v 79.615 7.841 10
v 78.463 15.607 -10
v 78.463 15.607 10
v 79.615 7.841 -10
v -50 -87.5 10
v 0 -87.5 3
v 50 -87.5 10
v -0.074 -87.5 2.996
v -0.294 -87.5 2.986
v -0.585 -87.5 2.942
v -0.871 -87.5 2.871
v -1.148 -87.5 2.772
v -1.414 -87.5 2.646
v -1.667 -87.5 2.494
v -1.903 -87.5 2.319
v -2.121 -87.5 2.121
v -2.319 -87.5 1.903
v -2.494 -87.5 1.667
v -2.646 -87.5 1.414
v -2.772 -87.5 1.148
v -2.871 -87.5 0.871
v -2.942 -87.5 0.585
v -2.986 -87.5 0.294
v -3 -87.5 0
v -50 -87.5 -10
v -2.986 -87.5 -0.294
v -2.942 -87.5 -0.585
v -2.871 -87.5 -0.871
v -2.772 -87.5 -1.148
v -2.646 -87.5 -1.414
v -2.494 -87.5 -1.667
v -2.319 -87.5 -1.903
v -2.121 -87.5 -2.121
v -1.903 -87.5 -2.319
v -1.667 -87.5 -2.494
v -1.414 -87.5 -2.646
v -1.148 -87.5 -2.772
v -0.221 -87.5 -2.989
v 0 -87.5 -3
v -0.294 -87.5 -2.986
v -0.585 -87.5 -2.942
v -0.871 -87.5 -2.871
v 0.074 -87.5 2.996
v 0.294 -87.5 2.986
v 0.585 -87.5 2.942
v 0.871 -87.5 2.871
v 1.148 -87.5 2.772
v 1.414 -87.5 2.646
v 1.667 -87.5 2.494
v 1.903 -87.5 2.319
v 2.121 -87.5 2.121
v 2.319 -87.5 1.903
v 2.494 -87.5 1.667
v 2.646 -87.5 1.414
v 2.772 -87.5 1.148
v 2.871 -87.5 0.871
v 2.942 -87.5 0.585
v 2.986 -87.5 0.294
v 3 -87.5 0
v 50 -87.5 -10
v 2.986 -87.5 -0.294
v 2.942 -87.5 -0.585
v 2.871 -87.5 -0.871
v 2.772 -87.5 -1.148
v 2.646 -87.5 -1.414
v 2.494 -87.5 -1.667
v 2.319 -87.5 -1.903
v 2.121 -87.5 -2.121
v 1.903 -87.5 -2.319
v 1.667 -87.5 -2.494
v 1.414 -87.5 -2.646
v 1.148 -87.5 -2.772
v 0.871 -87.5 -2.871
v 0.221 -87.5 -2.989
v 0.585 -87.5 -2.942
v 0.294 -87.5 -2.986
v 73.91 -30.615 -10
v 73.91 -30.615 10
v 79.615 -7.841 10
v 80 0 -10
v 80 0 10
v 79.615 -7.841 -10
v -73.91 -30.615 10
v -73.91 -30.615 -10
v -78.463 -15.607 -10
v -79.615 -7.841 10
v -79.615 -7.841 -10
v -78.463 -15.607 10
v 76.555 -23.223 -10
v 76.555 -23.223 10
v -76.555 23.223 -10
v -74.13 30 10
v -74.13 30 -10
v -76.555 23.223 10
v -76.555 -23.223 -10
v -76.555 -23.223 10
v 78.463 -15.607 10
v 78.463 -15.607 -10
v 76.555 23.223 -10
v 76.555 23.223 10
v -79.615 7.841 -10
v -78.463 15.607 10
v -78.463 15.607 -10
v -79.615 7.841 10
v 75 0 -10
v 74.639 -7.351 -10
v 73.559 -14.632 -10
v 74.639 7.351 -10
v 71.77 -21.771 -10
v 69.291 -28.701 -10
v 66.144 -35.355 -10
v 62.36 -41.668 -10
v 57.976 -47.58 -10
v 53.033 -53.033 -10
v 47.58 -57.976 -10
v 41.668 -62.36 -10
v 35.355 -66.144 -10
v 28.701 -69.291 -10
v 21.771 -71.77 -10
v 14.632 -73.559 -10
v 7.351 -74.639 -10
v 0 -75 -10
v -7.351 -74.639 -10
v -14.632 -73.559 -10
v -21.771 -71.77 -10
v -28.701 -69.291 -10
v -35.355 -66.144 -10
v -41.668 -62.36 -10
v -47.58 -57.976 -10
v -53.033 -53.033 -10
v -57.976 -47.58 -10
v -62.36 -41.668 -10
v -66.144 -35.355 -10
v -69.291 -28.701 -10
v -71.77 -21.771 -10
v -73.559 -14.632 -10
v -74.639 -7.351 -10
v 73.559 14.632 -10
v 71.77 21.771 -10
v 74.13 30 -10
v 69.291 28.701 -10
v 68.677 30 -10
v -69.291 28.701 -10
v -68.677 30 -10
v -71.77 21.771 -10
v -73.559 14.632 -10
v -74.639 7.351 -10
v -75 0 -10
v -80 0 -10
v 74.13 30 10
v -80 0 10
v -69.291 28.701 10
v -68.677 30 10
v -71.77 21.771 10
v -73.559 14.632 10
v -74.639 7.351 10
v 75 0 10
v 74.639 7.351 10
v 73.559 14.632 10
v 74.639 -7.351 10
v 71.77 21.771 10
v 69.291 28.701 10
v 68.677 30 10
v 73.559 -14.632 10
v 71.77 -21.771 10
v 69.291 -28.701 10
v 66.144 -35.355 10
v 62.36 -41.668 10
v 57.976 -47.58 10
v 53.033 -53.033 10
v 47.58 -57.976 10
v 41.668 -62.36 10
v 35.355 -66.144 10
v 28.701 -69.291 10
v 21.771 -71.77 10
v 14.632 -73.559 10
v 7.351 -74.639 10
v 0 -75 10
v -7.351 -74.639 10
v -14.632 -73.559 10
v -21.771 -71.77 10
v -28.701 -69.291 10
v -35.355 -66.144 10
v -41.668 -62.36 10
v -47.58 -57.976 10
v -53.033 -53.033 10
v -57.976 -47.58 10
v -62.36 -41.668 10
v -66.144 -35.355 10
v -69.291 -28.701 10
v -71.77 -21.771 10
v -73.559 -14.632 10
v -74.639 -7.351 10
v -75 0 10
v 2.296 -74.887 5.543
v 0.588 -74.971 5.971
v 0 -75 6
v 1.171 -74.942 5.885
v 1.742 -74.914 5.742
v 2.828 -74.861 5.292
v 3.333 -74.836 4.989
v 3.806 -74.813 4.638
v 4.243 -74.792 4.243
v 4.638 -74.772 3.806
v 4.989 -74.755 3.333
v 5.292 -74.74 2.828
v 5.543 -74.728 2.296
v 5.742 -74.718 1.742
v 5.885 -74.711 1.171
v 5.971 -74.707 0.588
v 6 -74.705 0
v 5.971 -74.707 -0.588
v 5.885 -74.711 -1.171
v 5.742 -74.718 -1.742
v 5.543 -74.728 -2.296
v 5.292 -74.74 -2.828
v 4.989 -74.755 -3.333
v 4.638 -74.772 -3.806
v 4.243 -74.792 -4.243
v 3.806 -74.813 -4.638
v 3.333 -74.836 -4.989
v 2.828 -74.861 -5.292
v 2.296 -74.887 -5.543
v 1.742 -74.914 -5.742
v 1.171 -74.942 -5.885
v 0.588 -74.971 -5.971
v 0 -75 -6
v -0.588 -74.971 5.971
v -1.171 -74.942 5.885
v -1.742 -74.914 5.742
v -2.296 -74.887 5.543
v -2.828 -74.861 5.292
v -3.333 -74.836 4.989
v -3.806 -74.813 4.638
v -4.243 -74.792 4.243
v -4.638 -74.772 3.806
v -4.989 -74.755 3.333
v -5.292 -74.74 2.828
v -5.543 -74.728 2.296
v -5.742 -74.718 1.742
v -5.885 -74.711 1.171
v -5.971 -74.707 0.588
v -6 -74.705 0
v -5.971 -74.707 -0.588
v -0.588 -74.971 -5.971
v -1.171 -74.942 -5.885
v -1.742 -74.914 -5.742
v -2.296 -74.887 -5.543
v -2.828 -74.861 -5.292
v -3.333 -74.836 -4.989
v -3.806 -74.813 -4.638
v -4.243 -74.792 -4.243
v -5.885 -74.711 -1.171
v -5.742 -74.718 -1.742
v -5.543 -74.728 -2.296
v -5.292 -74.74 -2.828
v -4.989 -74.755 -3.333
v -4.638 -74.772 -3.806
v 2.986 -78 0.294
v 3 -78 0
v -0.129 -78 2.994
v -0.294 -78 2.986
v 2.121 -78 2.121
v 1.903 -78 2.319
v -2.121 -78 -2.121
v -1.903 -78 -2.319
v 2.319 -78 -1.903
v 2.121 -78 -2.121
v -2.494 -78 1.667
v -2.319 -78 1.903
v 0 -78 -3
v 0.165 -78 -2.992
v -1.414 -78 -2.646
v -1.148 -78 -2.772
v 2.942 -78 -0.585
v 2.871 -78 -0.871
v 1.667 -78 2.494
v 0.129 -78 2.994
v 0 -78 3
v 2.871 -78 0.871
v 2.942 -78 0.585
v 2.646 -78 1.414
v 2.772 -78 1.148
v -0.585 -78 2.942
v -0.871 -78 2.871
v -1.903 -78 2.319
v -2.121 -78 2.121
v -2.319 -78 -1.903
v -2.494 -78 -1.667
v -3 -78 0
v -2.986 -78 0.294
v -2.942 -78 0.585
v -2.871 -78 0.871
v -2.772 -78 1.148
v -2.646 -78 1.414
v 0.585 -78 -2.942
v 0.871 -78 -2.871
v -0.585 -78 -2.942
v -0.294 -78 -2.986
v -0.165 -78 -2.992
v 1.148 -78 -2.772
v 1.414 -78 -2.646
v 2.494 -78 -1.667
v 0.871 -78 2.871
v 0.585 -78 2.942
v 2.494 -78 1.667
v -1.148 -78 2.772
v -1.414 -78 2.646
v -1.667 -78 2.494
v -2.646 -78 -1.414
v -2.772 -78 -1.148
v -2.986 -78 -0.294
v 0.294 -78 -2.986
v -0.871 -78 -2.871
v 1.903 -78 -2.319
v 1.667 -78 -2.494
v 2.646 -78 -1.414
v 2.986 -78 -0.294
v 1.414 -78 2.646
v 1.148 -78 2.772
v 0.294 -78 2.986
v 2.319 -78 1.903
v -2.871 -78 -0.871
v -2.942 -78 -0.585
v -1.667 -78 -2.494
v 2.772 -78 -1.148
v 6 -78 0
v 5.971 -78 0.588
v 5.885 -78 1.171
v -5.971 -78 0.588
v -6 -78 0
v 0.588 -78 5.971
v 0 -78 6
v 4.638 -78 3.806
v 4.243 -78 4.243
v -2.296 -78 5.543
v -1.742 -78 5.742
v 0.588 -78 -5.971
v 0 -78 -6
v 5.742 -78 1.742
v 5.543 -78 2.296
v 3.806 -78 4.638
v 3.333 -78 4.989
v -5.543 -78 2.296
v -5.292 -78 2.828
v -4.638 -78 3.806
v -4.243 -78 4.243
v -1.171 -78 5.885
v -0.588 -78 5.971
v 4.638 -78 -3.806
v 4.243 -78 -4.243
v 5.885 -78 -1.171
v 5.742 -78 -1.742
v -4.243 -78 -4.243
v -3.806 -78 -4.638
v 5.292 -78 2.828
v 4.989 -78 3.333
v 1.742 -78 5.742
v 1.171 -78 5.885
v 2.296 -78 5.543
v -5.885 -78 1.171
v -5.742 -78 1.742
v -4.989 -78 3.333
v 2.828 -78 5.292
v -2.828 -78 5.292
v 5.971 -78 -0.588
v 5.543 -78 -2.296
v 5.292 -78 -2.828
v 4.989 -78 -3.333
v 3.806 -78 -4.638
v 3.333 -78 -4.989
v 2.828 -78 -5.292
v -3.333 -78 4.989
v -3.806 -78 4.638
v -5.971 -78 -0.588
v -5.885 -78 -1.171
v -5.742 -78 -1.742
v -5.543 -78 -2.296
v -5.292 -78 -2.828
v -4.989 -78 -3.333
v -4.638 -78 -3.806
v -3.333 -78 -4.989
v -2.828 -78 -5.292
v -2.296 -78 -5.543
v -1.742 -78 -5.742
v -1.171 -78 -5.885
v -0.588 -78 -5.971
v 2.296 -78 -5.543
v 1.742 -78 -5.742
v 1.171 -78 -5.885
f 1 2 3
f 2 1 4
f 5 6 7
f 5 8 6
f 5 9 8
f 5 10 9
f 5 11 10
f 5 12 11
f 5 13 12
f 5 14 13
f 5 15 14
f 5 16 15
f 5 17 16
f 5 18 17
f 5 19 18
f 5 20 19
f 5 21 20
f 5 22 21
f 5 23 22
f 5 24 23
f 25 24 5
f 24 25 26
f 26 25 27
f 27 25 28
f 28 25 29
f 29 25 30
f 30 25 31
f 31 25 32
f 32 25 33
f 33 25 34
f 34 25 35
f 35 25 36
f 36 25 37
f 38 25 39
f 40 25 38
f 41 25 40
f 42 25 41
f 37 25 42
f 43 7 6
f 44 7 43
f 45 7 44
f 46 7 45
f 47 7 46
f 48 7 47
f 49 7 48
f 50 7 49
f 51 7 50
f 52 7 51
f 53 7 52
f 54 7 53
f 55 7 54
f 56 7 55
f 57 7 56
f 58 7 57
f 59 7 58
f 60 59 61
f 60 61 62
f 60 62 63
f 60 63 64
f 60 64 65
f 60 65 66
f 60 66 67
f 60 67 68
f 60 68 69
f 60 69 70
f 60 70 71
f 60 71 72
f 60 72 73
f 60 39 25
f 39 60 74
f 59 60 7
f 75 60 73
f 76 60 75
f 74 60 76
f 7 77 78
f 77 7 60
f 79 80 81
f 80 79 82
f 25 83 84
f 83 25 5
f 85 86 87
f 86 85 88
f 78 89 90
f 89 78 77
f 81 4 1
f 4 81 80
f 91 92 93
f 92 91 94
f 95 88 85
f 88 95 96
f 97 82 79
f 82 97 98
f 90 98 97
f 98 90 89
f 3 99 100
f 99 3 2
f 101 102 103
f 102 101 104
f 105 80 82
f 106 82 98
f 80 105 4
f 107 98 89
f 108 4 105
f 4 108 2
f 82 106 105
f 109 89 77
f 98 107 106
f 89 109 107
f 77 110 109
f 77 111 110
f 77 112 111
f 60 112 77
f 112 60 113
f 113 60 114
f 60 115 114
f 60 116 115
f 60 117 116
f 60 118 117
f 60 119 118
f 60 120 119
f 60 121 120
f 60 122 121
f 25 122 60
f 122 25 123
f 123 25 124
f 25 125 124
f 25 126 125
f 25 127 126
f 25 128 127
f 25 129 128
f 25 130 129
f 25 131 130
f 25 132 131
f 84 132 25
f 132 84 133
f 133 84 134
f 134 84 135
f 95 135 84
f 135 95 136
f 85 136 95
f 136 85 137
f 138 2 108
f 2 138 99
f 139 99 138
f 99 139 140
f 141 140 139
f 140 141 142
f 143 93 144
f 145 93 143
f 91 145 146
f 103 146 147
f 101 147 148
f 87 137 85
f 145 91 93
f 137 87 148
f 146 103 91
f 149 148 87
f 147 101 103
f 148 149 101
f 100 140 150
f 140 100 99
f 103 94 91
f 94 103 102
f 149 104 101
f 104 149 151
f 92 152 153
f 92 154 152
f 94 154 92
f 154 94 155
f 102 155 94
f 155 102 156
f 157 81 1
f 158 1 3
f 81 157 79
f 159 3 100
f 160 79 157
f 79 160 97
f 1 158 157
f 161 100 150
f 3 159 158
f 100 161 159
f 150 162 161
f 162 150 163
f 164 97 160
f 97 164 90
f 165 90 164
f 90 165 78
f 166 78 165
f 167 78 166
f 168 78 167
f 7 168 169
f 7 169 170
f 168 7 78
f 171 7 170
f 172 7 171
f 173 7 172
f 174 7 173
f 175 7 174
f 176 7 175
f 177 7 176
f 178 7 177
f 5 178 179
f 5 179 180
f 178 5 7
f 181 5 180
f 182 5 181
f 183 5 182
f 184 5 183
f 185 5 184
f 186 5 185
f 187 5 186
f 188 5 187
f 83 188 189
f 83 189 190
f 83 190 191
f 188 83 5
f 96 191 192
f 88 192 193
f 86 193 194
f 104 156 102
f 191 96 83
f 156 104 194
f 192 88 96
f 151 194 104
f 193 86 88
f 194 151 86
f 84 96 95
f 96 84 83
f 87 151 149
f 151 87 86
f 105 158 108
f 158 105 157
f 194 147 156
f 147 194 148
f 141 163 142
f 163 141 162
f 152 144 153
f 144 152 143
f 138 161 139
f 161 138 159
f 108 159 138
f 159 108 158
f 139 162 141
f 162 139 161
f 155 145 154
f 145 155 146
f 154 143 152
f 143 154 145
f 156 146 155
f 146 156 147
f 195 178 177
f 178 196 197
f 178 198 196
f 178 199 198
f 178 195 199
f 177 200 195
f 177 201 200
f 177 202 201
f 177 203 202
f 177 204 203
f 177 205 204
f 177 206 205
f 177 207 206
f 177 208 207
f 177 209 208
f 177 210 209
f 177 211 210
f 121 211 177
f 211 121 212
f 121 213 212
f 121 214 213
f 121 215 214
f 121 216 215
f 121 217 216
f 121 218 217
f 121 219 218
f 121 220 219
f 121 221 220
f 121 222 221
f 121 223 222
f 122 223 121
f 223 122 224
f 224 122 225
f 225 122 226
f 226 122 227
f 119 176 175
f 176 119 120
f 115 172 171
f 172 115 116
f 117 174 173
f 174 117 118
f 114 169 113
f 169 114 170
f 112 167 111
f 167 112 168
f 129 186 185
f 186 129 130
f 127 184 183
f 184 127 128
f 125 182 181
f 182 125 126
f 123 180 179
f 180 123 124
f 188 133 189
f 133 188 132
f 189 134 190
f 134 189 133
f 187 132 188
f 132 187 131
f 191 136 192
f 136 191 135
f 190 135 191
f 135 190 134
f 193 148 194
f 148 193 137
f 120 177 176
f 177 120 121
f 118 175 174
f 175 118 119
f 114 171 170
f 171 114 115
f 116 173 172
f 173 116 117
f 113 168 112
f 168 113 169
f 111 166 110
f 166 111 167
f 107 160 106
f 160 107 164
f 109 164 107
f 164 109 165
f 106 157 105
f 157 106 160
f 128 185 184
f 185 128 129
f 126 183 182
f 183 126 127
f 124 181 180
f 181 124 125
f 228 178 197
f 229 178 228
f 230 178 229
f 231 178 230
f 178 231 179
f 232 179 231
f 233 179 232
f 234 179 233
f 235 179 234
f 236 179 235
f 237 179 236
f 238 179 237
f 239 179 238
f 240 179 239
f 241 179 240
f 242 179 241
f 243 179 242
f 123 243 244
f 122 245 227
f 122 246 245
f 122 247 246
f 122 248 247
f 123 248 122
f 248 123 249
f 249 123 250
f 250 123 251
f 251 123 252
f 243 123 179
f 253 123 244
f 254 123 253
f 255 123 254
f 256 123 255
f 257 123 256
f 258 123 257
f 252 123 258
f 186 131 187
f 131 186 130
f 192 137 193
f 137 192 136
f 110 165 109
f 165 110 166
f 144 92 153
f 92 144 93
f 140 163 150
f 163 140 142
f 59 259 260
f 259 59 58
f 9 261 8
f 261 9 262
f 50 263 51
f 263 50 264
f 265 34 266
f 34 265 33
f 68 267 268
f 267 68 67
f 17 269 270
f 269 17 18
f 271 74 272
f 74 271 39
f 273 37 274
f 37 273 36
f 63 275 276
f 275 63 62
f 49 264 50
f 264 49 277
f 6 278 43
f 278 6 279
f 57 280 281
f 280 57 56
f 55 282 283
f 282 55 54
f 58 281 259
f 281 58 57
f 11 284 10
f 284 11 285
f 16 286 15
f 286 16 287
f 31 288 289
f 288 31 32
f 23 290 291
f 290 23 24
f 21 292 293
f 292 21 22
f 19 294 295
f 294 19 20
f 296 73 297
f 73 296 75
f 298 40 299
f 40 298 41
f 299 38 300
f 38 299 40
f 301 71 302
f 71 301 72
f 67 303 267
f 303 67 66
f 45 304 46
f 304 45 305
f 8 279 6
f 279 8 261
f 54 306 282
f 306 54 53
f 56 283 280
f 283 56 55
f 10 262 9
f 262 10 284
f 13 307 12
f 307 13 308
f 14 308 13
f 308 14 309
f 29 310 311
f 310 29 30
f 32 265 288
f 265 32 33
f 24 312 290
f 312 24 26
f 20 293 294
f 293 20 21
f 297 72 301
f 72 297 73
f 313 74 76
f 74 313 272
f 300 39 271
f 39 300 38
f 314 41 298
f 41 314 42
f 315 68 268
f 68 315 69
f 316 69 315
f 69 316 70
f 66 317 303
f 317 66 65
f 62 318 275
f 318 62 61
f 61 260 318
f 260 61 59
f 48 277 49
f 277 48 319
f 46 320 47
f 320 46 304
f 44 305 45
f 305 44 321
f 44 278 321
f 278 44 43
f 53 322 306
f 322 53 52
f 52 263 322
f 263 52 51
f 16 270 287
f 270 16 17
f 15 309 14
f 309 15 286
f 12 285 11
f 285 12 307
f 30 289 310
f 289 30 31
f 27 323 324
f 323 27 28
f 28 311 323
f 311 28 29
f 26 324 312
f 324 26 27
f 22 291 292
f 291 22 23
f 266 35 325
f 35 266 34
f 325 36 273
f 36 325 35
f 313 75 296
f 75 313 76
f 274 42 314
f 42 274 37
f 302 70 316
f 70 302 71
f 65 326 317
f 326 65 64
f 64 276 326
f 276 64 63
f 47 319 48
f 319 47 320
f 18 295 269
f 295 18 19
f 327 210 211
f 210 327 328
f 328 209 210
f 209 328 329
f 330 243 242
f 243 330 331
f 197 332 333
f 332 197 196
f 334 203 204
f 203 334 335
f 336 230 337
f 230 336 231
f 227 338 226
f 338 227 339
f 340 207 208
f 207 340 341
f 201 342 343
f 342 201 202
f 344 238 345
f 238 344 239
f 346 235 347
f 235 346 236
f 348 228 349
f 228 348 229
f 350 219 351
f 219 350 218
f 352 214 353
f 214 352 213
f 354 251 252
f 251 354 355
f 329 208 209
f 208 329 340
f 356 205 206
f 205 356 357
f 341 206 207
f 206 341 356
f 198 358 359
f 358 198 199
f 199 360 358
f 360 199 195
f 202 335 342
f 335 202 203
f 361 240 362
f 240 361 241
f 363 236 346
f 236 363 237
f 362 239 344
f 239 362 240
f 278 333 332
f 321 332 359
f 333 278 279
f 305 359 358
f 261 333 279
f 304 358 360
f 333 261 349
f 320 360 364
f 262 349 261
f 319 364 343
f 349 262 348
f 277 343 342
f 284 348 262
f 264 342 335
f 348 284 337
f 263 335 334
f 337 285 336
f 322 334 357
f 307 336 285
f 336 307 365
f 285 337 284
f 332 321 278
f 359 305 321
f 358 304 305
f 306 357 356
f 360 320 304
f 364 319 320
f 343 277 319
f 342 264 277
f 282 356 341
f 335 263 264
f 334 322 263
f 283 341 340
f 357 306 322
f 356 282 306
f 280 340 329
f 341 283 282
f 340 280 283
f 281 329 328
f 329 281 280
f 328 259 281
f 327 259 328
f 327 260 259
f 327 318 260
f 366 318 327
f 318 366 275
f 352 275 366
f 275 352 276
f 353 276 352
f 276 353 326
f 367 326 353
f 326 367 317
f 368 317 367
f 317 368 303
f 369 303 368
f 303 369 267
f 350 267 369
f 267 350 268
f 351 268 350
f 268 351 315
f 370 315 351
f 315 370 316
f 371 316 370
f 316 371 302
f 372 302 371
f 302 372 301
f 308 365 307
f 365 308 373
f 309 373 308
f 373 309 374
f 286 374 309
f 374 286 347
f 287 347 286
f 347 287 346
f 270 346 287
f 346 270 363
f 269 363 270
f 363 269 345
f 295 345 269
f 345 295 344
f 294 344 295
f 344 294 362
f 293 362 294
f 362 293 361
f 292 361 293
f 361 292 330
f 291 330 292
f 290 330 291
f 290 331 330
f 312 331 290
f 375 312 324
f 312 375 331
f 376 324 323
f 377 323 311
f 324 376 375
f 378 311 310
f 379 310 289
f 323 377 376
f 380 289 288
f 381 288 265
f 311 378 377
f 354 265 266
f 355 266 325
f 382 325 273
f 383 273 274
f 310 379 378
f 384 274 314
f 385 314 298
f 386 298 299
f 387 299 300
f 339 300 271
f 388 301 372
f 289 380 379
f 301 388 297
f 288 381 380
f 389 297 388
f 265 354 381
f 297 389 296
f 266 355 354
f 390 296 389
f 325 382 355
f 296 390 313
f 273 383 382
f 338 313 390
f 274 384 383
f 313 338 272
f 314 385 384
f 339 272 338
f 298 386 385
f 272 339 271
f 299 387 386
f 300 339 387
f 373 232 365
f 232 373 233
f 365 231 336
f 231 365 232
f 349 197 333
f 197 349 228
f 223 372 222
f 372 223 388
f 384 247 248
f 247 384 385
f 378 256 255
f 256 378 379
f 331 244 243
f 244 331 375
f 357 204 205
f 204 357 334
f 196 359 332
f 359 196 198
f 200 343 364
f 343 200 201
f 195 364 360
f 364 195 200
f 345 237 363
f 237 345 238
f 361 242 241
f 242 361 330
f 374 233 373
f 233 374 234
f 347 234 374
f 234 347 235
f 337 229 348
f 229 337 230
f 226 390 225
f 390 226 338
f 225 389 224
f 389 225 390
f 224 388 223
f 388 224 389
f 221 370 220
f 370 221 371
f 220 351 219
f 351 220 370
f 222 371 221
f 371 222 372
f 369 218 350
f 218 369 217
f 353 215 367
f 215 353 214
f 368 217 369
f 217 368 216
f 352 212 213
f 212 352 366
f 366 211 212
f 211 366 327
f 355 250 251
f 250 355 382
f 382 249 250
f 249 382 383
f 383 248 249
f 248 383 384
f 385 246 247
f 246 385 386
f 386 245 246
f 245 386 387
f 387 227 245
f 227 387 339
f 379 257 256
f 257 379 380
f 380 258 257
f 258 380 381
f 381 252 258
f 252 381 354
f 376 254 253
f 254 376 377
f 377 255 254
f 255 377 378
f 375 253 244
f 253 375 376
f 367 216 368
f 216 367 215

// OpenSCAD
// halterung für 150er rohr
$fn=64;

wand=5;
durchmesser_aussen=150;


        
difference(){
    hull(){
        cylinder(r=durchmesser_aussen/2+wand, h=20, center=true);
        translate([0,-durchmesser_aussen/2,0])
        cube([100, 25, 20], center = true);  
    }
    cylinder(r=durchmesser_aussen/2, h=21, center=true);
    translate([0,130,0])
    cube([200,200,25], center=true);
    
    translate([0, -durchmesser_aussen/2,0])
    rotate([90,0,0])
    cylinder(r=3, h=50, center=true);
    
    translate([0, -durchmesser_aussen/2-1,0])
    rotate([90,0,0])
    cylinder(r=6, h=4, center=true);
}
